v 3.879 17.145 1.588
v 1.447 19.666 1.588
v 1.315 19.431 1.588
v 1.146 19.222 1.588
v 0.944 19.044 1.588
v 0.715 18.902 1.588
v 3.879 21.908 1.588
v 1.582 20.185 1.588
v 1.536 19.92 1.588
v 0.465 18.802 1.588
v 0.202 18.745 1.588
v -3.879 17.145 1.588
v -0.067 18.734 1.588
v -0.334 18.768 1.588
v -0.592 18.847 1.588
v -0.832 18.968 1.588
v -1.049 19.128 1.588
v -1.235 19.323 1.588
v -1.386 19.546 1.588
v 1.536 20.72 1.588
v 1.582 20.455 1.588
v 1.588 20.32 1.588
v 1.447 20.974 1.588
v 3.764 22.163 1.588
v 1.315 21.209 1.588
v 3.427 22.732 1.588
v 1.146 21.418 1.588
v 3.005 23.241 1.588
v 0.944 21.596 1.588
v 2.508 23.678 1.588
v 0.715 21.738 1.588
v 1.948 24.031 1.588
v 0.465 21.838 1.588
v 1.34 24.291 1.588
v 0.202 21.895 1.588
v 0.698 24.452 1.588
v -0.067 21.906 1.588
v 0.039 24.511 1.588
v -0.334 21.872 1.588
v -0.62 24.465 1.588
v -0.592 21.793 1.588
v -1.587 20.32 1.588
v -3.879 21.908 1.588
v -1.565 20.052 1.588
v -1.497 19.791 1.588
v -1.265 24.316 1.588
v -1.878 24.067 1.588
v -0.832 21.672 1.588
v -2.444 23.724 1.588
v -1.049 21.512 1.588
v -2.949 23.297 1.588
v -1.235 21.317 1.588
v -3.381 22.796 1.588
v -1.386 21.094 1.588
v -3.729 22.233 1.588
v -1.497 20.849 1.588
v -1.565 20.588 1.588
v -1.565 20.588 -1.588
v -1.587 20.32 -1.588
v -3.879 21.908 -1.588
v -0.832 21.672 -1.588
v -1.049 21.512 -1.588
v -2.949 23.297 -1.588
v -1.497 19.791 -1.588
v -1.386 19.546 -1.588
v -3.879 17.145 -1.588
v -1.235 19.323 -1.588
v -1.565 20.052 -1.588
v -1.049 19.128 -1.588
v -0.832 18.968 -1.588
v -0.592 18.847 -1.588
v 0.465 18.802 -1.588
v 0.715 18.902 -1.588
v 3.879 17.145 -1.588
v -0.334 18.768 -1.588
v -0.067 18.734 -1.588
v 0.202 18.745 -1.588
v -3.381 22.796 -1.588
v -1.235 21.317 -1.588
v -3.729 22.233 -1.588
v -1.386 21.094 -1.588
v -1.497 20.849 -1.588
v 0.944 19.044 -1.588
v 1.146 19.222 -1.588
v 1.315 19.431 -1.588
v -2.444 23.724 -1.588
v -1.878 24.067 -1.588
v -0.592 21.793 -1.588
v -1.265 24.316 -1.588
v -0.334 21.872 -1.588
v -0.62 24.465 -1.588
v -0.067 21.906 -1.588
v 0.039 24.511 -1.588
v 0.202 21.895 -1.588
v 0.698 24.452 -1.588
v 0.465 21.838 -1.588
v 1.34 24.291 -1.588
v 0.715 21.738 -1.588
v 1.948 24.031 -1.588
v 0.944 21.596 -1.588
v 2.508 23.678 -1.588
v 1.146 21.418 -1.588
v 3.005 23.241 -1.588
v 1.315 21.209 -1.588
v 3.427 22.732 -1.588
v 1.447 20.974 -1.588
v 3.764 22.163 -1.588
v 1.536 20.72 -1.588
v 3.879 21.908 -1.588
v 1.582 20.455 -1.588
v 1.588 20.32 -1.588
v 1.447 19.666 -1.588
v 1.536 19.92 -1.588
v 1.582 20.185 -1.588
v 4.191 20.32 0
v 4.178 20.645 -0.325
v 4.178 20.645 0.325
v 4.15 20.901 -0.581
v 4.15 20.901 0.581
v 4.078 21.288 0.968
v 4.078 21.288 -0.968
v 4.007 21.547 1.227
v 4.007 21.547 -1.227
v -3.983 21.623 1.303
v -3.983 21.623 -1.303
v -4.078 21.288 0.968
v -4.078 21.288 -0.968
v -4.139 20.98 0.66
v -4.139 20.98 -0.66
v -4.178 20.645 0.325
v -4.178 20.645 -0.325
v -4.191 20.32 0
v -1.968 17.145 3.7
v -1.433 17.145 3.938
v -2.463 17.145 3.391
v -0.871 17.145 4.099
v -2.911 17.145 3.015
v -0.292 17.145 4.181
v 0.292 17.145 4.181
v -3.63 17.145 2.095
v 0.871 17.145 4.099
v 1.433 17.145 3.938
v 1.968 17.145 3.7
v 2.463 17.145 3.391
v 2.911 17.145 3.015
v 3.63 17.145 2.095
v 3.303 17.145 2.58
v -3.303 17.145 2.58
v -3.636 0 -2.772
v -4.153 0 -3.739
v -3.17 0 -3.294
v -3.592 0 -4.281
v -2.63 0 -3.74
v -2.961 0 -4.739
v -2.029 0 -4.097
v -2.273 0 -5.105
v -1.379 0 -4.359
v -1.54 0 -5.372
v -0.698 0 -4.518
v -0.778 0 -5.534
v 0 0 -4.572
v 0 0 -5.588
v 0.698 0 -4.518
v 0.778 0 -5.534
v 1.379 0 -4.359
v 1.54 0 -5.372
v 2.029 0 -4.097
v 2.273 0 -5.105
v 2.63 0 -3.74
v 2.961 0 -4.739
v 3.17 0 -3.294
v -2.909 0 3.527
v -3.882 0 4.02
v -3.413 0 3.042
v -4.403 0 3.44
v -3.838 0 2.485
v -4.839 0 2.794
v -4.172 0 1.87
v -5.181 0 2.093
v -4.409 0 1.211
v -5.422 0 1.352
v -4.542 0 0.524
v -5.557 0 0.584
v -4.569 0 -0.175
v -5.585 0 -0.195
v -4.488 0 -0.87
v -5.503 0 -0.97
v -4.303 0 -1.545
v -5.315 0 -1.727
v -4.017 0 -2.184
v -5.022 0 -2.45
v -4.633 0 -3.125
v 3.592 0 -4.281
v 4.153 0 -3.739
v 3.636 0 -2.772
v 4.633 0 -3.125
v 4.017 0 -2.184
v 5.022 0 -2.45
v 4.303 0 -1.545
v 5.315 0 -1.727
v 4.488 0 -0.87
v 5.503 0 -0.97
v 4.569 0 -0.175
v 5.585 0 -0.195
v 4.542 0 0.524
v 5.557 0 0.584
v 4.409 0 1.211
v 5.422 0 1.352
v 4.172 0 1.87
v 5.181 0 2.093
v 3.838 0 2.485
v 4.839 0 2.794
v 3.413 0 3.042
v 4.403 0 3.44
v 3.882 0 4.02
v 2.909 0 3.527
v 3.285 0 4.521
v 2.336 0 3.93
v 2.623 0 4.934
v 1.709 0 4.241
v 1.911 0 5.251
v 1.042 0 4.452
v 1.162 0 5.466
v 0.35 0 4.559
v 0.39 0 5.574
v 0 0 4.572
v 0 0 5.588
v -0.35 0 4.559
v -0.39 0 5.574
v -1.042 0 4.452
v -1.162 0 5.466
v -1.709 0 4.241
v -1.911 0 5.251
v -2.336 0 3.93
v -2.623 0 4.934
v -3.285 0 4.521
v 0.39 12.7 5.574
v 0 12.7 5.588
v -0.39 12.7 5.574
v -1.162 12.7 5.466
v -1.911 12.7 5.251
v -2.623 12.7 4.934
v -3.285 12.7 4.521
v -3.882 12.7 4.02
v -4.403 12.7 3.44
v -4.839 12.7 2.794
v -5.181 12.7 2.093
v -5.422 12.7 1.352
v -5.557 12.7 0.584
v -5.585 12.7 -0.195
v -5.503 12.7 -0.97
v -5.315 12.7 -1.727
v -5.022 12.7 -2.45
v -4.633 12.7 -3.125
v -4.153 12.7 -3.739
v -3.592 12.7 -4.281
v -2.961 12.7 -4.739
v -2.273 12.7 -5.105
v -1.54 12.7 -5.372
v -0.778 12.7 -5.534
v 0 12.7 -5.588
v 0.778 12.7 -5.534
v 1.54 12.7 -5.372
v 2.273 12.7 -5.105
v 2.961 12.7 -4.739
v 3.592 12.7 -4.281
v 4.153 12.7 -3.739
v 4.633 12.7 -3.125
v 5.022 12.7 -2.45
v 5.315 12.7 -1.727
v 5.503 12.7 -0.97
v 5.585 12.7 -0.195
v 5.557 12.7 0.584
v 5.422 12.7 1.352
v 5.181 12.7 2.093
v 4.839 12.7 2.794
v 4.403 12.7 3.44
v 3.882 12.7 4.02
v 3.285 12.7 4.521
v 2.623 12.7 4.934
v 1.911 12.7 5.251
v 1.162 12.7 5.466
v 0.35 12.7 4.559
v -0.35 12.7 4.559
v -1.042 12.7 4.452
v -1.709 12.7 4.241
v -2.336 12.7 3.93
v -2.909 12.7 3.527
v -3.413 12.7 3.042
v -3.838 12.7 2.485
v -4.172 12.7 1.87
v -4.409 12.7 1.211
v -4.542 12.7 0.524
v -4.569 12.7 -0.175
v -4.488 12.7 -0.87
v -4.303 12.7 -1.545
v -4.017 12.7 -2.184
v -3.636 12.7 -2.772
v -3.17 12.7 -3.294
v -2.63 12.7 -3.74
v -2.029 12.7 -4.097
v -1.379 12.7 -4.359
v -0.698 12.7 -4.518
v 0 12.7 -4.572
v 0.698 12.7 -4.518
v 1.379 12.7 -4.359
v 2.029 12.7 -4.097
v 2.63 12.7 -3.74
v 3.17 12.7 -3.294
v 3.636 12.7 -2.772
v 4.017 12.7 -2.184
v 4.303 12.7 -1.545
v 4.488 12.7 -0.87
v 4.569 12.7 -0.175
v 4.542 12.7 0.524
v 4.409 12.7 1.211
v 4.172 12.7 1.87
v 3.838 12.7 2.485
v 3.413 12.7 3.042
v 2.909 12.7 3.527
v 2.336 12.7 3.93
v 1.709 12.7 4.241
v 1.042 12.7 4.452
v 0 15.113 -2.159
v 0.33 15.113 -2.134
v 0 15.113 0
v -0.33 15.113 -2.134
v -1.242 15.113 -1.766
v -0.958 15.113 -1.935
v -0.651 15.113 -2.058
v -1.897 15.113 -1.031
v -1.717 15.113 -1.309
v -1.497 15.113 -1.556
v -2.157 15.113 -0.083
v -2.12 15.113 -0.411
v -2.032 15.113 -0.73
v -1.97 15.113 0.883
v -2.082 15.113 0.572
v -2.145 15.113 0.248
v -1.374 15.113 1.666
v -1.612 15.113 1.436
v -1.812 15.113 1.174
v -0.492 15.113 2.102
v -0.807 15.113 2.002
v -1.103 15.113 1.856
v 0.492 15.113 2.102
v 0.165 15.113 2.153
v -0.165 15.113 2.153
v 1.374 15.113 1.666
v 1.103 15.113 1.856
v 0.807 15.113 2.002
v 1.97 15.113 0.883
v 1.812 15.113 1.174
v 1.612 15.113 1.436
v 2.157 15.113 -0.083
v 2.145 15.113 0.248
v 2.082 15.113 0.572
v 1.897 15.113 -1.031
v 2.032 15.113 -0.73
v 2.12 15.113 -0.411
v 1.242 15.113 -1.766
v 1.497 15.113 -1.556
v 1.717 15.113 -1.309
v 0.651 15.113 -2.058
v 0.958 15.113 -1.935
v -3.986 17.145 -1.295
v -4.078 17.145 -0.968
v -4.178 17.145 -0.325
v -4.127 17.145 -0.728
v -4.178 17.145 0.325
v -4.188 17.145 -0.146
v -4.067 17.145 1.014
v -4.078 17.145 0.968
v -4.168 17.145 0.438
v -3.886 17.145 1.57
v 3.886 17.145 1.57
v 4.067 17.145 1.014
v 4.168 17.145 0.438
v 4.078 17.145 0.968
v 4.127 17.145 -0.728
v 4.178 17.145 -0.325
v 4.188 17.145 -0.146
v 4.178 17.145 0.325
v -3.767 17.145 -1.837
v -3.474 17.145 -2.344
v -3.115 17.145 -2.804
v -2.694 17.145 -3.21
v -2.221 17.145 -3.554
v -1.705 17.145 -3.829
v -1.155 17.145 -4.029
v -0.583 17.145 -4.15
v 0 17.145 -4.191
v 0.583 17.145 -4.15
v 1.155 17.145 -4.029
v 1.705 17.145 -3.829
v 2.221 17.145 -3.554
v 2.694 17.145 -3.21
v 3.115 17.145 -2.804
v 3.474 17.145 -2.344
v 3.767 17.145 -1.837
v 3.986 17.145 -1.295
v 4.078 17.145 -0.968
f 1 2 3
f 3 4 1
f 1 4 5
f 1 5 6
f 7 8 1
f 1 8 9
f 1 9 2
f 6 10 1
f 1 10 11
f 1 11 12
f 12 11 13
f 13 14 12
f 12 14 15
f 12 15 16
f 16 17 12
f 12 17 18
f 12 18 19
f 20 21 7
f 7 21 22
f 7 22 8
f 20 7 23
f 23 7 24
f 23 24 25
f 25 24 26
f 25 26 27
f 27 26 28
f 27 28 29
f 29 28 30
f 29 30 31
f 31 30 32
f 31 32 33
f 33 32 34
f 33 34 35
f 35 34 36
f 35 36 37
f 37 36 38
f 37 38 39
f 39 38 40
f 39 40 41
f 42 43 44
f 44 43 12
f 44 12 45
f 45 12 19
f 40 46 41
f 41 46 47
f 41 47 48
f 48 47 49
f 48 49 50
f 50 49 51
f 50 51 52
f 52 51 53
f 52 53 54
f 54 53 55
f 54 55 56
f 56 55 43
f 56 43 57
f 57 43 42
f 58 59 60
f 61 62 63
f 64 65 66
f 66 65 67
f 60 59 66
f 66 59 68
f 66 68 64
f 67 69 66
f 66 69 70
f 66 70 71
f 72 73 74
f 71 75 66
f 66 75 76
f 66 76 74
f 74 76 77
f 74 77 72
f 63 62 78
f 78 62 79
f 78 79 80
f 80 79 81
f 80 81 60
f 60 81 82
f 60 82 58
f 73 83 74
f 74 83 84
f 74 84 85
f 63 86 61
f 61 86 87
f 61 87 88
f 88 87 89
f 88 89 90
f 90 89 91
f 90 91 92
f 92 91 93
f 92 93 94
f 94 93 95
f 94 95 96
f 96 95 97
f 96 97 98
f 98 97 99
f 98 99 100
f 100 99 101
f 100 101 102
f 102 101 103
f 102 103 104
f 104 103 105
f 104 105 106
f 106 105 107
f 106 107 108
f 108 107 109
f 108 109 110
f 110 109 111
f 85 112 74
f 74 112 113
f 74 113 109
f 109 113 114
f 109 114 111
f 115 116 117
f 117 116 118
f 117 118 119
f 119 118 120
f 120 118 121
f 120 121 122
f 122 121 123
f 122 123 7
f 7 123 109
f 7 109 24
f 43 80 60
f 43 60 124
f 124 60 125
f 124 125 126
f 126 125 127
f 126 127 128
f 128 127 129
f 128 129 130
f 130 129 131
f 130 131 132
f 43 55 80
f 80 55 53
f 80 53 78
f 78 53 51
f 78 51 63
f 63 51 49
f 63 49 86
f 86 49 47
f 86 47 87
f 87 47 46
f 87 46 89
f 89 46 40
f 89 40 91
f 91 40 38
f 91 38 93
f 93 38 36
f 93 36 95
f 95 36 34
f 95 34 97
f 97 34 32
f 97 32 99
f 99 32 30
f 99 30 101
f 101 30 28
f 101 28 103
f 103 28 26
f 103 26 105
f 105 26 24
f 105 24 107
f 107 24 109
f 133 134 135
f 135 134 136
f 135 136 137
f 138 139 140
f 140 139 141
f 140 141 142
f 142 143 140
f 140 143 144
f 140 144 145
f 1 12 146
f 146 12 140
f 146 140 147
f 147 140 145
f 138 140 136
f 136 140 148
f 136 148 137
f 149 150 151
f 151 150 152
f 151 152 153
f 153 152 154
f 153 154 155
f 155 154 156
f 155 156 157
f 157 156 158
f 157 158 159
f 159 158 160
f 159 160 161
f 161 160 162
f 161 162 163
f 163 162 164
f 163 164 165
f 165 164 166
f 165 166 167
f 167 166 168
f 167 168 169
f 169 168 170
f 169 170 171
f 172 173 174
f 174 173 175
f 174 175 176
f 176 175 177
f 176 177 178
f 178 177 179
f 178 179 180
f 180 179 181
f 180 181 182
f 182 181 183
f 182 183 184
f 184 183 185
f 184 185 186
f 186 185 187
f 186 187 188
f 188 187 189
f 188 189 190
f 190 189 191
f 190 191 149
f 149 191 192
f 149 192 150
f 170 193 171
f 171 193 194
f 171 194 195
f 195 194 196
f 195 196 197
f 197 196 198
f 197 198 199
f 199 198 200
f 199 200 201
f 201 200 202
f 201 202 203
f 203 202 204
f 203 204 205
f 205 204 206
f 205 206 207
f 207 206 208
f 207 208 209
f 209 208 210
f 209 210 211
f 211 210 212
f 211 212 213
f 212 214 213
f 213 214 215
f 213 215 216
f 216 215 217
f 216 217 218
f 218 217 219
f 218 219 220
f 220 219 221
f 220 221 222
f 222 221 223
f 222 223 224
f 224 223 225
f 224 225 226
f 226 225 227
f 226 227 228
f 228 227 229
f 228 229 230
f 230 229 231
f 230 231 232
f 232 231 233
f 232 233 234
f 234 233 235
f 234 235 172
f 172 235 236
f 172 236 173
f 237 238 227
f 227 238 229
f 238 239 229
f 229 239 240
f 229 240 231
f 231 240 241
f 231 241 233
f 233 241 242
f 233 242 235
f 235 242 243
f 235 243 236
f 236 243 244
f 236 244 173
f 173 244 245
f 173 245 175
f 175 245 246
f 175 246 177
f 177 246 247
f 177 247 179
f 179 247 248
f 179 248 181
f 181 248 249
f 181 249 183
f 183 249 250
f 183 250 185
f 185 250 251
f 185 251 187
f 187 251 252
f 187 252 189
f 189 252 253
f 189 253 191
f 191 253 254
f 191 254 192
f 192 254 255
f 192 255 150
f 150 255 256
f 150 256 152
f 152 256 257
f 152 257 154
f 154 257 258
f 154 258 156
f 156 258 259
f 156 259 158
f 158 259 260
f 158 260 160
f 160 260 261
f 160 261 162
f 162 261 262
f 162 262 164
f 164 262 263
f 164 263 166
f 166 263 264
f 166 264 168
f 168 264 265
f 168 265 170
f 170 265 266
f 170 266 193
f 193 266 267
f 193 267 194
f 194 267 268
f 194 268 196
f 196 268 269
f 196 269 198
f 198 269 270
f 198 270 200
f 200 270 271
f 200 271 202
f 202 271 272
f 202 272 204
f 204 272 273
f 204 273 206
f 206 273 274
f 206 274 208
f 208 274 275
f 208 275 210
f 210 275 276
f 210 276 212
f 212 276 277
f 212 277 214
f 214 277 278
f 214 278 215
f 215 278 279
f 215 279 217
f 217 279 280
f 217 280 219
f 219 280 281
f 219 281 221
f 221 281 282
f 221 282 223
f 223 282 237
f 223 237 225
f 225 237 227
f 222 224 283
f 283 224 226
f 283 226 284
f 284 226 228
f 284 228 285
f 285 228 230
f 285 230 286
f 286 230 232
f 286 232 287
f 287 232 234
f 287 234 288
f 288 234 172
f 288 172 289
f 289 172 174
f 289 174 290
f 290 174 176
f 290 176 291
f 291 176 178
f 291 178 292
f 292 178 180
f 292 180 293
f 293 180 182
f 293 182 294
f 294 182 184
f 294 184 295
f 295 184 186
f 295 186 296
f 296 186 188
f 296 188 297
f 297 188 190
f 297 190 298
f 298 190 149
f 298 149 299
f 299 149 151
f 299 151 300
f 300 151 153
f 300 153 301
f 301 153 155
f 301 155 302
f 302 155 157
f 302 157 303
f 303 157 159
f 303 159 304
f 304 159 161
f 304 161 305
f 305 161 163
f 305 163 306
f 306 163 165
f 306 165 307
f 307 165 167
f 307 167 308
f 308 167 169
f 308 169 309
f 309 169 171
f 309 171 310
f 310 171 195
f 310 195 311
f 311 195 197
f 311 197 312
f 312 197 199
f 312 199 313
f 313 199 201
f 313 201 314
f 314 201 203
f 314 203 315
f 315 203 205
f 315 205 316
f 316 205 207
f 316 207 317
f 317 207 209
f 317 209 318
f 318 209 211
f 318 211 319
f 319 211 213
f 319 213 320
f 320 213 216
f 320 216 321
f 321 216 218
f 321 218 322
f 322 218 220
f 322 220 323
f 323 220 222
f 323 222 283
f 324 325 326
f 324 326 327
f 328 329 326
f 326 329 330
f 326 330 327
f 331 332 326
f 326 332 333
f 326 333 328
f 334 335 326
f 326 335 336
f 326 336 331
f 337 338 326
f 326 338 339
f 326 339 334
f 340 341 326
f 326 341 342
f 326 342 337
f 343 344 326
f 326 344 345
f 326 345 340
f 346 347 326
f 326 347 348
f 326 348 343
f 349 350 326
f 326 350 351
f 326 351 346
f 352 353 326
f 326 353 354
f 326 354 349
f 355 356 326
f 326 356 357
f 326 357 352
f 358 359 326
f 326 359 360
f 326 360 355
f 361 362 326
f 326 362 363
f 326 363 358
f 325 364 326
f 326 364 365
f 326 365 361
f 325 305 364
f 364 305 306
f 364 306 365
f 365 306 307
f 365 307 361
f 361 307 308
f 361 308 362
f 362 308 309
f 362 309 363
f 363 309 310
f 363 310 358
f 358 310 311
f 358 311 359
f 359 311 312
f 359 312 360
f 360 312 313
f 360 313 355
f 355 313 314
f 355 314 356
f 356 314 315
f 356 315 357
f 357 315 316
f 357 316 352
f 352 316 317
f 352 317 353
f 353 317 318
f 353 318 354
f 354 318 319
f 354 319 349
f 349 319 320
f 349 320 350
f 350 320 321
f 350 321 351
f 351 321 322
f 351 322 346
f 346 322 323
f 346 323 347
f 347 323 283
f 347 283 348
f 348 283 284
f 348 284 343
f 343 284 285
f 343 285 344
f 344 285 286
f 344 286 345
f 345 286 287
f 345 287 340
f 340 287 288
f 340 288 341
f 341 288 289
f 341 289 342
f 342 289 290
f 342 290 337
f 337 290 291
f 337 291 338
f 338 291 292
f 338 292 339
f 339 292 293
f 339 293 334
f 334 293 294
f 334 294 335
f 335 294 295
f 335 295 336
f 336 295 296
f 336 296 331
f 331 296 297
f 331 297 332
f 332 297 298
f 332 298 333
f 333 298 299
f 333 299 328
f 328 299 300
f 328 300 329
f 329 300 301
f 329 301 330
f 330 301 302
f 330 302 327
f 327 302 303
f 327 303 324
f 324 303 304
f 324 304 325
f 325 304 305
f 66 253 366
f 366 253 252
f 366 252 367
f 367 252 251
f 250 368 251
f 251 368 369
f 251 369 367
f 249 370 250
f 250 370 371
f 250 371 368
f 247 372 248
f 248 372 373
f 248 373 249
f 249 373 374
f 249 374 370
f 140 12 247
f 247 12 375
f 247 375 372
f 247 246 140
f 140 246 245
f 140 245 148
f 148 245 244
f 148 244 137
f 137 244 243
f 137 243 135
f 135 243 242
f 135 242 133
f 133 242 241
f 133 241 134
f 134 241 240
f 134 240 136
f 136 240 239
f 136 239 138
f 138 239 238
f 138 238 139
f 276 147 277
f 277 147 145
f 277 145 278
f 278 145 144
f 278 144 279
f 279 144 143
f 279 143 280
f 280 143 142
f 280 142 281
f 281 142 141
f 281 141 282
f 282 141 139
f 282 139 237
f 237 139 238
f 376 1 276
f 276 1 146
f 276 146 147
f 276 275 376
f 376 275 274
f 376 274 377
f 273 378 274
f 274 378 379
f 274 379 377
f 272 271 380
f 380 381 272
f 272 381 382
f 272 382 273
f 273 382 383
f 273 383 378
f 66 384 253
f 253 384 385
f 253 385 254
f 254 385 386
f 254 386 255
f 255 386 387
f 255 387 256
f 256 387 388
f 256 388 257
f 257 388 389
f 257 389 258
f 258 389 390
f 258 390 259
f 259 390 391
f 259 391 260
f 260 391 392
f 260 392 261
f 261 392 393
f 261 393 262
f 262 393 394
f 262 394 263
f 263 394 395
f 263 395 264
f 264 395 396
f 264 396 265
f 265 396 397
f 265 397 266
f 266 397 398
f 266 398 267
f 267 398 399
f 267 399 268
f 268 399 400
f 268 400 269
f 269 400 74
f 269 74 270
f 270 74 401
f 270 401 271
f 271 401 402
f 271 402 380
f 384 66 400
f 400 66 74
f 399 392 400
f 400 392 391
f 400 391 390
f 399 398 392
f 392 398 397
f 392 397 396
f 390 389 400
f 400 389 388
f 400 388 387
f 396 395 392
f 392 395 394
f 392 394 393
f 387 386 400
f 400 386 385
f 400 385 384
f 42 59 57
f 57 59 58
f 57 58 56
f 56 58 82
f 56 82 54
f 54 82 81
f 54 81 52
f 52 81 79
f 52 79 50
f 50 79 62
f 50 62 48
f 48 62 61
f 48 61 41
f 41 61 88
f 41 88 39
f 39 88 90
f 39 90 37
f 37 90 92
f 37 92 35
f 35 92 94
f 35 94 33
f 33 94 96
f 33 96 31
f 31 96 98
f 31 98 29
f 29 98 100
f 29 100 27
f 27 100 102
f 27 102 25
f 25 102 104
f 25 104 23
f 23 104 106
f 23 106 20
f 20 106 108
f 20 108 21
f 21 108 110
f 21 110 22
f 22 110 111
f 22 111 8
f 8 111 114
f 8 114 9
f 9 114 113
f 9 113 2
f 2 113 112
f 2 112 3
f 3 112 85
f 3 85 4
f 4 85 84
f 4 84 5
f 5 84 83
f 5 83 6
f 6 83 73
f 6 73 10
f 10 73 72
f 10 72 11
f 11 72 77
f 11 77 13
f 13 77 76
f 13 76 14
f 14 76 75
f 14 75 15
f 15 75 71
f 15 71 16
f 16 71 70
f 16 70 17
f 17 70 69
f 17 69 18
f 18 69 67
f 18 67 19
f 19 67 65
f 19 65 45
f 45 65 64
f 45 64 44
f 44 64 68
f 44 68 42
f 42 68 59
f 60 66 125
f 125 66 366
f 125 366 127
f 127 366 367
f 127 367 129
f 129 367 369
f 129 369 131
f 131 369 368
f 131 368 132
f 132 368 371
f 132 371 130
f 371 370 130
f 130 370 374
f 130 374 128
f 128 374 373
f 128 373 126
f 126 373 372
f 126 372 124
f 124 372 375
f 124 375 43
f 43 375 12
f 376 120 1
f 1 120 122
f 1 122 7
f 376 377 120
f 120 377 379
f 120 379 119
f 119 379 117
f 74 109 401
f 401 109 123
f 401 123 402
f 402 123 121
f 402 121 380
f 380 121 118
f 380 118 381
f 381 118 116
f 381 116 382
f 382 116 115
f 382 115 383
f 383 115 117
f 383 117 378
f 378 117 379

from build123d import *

# Parameters (mm, degrees)
SKETCH1_R           = 5.588
SKETCH1_R_2         = 4.572
BOSS_EXTRUDE1_DEPTH = 12.7
SKETCH3_R           = 1.5875
BOSS_EXTRUDE3_DEPTH = 1.5875
SKETCH6_OUTSIDE_W   = 19.008
SKETCH6_OUTSIDE_H   = 19.008
SKETCH6_OUTSIDE_R   = 4.191
CUT_EXTRUDE4_DEPTH  = 25.4


with BuildPart() as part:
    # Sketch1 → Boss-Extrude1 (new body)
    with BuildSketch(Plane(origin=(0, 0, 0), x_dir=(1, 0, 0), z_dir=(0, 1, 0))):
        Circle(SKETCH1_R)
        Circle(SKETCH1_R_2, mode=Mode.SUBTRACT)
    extrude(amount=BOSS_EXTRUDE1_DEPTH)

    # Sketch2 → Revolve2 (revolve)
    with BuildSketch(Plane.XY):
        Polygon((-5.588, 12.7), (-4.572, 12.7), (-2.159, 15.113), (0, 15.113), (0, 17.145), (-2.159, 17.145), (-4.191, 17.145), align=None)
    revolve(axis=Axis((0, 15.113, 0), (0, 1, 0)))

    # Sketch3 → Boss-Extrude3 (add, symmetric)
    with BuildSketch(Plane.XY):
        with BuildLine():
            Line((-4.191, 17.145), (4.191, 17.145))
            Line((4.191, 17.145), (4.191, 20.32))
            ThreePointArc((4.191, 20.32), (0, 24.511), (-4.191, 20.32))
            Line((-4.191, 20.32), (-4.191, 17.145))
        make_face()
        with Locations((0, 20.32)):
            Circle(SKETCH3_R, mode=Mode.SUBTRACT)
    extrude(amount=BOSS_EXTRUDE3_DEPTH, both=True)

    # Sketch6 outside → Cut-Extrude4 (cut)
    with BuildSketch(Plane.XZ.offset(-17.145)):
        Rectangle(SKETCH6_OUTSIDE_W, SKETCH6_OUTSIDE_H)
        Circle(SKETCH6_OUTSIDE_R, mode=Mode.SUBTRACT)
    extrude(amount=-CUT_EXTRUDE4_DEPTH, mode=Mode.SUBTRACT)


solid = part.part
